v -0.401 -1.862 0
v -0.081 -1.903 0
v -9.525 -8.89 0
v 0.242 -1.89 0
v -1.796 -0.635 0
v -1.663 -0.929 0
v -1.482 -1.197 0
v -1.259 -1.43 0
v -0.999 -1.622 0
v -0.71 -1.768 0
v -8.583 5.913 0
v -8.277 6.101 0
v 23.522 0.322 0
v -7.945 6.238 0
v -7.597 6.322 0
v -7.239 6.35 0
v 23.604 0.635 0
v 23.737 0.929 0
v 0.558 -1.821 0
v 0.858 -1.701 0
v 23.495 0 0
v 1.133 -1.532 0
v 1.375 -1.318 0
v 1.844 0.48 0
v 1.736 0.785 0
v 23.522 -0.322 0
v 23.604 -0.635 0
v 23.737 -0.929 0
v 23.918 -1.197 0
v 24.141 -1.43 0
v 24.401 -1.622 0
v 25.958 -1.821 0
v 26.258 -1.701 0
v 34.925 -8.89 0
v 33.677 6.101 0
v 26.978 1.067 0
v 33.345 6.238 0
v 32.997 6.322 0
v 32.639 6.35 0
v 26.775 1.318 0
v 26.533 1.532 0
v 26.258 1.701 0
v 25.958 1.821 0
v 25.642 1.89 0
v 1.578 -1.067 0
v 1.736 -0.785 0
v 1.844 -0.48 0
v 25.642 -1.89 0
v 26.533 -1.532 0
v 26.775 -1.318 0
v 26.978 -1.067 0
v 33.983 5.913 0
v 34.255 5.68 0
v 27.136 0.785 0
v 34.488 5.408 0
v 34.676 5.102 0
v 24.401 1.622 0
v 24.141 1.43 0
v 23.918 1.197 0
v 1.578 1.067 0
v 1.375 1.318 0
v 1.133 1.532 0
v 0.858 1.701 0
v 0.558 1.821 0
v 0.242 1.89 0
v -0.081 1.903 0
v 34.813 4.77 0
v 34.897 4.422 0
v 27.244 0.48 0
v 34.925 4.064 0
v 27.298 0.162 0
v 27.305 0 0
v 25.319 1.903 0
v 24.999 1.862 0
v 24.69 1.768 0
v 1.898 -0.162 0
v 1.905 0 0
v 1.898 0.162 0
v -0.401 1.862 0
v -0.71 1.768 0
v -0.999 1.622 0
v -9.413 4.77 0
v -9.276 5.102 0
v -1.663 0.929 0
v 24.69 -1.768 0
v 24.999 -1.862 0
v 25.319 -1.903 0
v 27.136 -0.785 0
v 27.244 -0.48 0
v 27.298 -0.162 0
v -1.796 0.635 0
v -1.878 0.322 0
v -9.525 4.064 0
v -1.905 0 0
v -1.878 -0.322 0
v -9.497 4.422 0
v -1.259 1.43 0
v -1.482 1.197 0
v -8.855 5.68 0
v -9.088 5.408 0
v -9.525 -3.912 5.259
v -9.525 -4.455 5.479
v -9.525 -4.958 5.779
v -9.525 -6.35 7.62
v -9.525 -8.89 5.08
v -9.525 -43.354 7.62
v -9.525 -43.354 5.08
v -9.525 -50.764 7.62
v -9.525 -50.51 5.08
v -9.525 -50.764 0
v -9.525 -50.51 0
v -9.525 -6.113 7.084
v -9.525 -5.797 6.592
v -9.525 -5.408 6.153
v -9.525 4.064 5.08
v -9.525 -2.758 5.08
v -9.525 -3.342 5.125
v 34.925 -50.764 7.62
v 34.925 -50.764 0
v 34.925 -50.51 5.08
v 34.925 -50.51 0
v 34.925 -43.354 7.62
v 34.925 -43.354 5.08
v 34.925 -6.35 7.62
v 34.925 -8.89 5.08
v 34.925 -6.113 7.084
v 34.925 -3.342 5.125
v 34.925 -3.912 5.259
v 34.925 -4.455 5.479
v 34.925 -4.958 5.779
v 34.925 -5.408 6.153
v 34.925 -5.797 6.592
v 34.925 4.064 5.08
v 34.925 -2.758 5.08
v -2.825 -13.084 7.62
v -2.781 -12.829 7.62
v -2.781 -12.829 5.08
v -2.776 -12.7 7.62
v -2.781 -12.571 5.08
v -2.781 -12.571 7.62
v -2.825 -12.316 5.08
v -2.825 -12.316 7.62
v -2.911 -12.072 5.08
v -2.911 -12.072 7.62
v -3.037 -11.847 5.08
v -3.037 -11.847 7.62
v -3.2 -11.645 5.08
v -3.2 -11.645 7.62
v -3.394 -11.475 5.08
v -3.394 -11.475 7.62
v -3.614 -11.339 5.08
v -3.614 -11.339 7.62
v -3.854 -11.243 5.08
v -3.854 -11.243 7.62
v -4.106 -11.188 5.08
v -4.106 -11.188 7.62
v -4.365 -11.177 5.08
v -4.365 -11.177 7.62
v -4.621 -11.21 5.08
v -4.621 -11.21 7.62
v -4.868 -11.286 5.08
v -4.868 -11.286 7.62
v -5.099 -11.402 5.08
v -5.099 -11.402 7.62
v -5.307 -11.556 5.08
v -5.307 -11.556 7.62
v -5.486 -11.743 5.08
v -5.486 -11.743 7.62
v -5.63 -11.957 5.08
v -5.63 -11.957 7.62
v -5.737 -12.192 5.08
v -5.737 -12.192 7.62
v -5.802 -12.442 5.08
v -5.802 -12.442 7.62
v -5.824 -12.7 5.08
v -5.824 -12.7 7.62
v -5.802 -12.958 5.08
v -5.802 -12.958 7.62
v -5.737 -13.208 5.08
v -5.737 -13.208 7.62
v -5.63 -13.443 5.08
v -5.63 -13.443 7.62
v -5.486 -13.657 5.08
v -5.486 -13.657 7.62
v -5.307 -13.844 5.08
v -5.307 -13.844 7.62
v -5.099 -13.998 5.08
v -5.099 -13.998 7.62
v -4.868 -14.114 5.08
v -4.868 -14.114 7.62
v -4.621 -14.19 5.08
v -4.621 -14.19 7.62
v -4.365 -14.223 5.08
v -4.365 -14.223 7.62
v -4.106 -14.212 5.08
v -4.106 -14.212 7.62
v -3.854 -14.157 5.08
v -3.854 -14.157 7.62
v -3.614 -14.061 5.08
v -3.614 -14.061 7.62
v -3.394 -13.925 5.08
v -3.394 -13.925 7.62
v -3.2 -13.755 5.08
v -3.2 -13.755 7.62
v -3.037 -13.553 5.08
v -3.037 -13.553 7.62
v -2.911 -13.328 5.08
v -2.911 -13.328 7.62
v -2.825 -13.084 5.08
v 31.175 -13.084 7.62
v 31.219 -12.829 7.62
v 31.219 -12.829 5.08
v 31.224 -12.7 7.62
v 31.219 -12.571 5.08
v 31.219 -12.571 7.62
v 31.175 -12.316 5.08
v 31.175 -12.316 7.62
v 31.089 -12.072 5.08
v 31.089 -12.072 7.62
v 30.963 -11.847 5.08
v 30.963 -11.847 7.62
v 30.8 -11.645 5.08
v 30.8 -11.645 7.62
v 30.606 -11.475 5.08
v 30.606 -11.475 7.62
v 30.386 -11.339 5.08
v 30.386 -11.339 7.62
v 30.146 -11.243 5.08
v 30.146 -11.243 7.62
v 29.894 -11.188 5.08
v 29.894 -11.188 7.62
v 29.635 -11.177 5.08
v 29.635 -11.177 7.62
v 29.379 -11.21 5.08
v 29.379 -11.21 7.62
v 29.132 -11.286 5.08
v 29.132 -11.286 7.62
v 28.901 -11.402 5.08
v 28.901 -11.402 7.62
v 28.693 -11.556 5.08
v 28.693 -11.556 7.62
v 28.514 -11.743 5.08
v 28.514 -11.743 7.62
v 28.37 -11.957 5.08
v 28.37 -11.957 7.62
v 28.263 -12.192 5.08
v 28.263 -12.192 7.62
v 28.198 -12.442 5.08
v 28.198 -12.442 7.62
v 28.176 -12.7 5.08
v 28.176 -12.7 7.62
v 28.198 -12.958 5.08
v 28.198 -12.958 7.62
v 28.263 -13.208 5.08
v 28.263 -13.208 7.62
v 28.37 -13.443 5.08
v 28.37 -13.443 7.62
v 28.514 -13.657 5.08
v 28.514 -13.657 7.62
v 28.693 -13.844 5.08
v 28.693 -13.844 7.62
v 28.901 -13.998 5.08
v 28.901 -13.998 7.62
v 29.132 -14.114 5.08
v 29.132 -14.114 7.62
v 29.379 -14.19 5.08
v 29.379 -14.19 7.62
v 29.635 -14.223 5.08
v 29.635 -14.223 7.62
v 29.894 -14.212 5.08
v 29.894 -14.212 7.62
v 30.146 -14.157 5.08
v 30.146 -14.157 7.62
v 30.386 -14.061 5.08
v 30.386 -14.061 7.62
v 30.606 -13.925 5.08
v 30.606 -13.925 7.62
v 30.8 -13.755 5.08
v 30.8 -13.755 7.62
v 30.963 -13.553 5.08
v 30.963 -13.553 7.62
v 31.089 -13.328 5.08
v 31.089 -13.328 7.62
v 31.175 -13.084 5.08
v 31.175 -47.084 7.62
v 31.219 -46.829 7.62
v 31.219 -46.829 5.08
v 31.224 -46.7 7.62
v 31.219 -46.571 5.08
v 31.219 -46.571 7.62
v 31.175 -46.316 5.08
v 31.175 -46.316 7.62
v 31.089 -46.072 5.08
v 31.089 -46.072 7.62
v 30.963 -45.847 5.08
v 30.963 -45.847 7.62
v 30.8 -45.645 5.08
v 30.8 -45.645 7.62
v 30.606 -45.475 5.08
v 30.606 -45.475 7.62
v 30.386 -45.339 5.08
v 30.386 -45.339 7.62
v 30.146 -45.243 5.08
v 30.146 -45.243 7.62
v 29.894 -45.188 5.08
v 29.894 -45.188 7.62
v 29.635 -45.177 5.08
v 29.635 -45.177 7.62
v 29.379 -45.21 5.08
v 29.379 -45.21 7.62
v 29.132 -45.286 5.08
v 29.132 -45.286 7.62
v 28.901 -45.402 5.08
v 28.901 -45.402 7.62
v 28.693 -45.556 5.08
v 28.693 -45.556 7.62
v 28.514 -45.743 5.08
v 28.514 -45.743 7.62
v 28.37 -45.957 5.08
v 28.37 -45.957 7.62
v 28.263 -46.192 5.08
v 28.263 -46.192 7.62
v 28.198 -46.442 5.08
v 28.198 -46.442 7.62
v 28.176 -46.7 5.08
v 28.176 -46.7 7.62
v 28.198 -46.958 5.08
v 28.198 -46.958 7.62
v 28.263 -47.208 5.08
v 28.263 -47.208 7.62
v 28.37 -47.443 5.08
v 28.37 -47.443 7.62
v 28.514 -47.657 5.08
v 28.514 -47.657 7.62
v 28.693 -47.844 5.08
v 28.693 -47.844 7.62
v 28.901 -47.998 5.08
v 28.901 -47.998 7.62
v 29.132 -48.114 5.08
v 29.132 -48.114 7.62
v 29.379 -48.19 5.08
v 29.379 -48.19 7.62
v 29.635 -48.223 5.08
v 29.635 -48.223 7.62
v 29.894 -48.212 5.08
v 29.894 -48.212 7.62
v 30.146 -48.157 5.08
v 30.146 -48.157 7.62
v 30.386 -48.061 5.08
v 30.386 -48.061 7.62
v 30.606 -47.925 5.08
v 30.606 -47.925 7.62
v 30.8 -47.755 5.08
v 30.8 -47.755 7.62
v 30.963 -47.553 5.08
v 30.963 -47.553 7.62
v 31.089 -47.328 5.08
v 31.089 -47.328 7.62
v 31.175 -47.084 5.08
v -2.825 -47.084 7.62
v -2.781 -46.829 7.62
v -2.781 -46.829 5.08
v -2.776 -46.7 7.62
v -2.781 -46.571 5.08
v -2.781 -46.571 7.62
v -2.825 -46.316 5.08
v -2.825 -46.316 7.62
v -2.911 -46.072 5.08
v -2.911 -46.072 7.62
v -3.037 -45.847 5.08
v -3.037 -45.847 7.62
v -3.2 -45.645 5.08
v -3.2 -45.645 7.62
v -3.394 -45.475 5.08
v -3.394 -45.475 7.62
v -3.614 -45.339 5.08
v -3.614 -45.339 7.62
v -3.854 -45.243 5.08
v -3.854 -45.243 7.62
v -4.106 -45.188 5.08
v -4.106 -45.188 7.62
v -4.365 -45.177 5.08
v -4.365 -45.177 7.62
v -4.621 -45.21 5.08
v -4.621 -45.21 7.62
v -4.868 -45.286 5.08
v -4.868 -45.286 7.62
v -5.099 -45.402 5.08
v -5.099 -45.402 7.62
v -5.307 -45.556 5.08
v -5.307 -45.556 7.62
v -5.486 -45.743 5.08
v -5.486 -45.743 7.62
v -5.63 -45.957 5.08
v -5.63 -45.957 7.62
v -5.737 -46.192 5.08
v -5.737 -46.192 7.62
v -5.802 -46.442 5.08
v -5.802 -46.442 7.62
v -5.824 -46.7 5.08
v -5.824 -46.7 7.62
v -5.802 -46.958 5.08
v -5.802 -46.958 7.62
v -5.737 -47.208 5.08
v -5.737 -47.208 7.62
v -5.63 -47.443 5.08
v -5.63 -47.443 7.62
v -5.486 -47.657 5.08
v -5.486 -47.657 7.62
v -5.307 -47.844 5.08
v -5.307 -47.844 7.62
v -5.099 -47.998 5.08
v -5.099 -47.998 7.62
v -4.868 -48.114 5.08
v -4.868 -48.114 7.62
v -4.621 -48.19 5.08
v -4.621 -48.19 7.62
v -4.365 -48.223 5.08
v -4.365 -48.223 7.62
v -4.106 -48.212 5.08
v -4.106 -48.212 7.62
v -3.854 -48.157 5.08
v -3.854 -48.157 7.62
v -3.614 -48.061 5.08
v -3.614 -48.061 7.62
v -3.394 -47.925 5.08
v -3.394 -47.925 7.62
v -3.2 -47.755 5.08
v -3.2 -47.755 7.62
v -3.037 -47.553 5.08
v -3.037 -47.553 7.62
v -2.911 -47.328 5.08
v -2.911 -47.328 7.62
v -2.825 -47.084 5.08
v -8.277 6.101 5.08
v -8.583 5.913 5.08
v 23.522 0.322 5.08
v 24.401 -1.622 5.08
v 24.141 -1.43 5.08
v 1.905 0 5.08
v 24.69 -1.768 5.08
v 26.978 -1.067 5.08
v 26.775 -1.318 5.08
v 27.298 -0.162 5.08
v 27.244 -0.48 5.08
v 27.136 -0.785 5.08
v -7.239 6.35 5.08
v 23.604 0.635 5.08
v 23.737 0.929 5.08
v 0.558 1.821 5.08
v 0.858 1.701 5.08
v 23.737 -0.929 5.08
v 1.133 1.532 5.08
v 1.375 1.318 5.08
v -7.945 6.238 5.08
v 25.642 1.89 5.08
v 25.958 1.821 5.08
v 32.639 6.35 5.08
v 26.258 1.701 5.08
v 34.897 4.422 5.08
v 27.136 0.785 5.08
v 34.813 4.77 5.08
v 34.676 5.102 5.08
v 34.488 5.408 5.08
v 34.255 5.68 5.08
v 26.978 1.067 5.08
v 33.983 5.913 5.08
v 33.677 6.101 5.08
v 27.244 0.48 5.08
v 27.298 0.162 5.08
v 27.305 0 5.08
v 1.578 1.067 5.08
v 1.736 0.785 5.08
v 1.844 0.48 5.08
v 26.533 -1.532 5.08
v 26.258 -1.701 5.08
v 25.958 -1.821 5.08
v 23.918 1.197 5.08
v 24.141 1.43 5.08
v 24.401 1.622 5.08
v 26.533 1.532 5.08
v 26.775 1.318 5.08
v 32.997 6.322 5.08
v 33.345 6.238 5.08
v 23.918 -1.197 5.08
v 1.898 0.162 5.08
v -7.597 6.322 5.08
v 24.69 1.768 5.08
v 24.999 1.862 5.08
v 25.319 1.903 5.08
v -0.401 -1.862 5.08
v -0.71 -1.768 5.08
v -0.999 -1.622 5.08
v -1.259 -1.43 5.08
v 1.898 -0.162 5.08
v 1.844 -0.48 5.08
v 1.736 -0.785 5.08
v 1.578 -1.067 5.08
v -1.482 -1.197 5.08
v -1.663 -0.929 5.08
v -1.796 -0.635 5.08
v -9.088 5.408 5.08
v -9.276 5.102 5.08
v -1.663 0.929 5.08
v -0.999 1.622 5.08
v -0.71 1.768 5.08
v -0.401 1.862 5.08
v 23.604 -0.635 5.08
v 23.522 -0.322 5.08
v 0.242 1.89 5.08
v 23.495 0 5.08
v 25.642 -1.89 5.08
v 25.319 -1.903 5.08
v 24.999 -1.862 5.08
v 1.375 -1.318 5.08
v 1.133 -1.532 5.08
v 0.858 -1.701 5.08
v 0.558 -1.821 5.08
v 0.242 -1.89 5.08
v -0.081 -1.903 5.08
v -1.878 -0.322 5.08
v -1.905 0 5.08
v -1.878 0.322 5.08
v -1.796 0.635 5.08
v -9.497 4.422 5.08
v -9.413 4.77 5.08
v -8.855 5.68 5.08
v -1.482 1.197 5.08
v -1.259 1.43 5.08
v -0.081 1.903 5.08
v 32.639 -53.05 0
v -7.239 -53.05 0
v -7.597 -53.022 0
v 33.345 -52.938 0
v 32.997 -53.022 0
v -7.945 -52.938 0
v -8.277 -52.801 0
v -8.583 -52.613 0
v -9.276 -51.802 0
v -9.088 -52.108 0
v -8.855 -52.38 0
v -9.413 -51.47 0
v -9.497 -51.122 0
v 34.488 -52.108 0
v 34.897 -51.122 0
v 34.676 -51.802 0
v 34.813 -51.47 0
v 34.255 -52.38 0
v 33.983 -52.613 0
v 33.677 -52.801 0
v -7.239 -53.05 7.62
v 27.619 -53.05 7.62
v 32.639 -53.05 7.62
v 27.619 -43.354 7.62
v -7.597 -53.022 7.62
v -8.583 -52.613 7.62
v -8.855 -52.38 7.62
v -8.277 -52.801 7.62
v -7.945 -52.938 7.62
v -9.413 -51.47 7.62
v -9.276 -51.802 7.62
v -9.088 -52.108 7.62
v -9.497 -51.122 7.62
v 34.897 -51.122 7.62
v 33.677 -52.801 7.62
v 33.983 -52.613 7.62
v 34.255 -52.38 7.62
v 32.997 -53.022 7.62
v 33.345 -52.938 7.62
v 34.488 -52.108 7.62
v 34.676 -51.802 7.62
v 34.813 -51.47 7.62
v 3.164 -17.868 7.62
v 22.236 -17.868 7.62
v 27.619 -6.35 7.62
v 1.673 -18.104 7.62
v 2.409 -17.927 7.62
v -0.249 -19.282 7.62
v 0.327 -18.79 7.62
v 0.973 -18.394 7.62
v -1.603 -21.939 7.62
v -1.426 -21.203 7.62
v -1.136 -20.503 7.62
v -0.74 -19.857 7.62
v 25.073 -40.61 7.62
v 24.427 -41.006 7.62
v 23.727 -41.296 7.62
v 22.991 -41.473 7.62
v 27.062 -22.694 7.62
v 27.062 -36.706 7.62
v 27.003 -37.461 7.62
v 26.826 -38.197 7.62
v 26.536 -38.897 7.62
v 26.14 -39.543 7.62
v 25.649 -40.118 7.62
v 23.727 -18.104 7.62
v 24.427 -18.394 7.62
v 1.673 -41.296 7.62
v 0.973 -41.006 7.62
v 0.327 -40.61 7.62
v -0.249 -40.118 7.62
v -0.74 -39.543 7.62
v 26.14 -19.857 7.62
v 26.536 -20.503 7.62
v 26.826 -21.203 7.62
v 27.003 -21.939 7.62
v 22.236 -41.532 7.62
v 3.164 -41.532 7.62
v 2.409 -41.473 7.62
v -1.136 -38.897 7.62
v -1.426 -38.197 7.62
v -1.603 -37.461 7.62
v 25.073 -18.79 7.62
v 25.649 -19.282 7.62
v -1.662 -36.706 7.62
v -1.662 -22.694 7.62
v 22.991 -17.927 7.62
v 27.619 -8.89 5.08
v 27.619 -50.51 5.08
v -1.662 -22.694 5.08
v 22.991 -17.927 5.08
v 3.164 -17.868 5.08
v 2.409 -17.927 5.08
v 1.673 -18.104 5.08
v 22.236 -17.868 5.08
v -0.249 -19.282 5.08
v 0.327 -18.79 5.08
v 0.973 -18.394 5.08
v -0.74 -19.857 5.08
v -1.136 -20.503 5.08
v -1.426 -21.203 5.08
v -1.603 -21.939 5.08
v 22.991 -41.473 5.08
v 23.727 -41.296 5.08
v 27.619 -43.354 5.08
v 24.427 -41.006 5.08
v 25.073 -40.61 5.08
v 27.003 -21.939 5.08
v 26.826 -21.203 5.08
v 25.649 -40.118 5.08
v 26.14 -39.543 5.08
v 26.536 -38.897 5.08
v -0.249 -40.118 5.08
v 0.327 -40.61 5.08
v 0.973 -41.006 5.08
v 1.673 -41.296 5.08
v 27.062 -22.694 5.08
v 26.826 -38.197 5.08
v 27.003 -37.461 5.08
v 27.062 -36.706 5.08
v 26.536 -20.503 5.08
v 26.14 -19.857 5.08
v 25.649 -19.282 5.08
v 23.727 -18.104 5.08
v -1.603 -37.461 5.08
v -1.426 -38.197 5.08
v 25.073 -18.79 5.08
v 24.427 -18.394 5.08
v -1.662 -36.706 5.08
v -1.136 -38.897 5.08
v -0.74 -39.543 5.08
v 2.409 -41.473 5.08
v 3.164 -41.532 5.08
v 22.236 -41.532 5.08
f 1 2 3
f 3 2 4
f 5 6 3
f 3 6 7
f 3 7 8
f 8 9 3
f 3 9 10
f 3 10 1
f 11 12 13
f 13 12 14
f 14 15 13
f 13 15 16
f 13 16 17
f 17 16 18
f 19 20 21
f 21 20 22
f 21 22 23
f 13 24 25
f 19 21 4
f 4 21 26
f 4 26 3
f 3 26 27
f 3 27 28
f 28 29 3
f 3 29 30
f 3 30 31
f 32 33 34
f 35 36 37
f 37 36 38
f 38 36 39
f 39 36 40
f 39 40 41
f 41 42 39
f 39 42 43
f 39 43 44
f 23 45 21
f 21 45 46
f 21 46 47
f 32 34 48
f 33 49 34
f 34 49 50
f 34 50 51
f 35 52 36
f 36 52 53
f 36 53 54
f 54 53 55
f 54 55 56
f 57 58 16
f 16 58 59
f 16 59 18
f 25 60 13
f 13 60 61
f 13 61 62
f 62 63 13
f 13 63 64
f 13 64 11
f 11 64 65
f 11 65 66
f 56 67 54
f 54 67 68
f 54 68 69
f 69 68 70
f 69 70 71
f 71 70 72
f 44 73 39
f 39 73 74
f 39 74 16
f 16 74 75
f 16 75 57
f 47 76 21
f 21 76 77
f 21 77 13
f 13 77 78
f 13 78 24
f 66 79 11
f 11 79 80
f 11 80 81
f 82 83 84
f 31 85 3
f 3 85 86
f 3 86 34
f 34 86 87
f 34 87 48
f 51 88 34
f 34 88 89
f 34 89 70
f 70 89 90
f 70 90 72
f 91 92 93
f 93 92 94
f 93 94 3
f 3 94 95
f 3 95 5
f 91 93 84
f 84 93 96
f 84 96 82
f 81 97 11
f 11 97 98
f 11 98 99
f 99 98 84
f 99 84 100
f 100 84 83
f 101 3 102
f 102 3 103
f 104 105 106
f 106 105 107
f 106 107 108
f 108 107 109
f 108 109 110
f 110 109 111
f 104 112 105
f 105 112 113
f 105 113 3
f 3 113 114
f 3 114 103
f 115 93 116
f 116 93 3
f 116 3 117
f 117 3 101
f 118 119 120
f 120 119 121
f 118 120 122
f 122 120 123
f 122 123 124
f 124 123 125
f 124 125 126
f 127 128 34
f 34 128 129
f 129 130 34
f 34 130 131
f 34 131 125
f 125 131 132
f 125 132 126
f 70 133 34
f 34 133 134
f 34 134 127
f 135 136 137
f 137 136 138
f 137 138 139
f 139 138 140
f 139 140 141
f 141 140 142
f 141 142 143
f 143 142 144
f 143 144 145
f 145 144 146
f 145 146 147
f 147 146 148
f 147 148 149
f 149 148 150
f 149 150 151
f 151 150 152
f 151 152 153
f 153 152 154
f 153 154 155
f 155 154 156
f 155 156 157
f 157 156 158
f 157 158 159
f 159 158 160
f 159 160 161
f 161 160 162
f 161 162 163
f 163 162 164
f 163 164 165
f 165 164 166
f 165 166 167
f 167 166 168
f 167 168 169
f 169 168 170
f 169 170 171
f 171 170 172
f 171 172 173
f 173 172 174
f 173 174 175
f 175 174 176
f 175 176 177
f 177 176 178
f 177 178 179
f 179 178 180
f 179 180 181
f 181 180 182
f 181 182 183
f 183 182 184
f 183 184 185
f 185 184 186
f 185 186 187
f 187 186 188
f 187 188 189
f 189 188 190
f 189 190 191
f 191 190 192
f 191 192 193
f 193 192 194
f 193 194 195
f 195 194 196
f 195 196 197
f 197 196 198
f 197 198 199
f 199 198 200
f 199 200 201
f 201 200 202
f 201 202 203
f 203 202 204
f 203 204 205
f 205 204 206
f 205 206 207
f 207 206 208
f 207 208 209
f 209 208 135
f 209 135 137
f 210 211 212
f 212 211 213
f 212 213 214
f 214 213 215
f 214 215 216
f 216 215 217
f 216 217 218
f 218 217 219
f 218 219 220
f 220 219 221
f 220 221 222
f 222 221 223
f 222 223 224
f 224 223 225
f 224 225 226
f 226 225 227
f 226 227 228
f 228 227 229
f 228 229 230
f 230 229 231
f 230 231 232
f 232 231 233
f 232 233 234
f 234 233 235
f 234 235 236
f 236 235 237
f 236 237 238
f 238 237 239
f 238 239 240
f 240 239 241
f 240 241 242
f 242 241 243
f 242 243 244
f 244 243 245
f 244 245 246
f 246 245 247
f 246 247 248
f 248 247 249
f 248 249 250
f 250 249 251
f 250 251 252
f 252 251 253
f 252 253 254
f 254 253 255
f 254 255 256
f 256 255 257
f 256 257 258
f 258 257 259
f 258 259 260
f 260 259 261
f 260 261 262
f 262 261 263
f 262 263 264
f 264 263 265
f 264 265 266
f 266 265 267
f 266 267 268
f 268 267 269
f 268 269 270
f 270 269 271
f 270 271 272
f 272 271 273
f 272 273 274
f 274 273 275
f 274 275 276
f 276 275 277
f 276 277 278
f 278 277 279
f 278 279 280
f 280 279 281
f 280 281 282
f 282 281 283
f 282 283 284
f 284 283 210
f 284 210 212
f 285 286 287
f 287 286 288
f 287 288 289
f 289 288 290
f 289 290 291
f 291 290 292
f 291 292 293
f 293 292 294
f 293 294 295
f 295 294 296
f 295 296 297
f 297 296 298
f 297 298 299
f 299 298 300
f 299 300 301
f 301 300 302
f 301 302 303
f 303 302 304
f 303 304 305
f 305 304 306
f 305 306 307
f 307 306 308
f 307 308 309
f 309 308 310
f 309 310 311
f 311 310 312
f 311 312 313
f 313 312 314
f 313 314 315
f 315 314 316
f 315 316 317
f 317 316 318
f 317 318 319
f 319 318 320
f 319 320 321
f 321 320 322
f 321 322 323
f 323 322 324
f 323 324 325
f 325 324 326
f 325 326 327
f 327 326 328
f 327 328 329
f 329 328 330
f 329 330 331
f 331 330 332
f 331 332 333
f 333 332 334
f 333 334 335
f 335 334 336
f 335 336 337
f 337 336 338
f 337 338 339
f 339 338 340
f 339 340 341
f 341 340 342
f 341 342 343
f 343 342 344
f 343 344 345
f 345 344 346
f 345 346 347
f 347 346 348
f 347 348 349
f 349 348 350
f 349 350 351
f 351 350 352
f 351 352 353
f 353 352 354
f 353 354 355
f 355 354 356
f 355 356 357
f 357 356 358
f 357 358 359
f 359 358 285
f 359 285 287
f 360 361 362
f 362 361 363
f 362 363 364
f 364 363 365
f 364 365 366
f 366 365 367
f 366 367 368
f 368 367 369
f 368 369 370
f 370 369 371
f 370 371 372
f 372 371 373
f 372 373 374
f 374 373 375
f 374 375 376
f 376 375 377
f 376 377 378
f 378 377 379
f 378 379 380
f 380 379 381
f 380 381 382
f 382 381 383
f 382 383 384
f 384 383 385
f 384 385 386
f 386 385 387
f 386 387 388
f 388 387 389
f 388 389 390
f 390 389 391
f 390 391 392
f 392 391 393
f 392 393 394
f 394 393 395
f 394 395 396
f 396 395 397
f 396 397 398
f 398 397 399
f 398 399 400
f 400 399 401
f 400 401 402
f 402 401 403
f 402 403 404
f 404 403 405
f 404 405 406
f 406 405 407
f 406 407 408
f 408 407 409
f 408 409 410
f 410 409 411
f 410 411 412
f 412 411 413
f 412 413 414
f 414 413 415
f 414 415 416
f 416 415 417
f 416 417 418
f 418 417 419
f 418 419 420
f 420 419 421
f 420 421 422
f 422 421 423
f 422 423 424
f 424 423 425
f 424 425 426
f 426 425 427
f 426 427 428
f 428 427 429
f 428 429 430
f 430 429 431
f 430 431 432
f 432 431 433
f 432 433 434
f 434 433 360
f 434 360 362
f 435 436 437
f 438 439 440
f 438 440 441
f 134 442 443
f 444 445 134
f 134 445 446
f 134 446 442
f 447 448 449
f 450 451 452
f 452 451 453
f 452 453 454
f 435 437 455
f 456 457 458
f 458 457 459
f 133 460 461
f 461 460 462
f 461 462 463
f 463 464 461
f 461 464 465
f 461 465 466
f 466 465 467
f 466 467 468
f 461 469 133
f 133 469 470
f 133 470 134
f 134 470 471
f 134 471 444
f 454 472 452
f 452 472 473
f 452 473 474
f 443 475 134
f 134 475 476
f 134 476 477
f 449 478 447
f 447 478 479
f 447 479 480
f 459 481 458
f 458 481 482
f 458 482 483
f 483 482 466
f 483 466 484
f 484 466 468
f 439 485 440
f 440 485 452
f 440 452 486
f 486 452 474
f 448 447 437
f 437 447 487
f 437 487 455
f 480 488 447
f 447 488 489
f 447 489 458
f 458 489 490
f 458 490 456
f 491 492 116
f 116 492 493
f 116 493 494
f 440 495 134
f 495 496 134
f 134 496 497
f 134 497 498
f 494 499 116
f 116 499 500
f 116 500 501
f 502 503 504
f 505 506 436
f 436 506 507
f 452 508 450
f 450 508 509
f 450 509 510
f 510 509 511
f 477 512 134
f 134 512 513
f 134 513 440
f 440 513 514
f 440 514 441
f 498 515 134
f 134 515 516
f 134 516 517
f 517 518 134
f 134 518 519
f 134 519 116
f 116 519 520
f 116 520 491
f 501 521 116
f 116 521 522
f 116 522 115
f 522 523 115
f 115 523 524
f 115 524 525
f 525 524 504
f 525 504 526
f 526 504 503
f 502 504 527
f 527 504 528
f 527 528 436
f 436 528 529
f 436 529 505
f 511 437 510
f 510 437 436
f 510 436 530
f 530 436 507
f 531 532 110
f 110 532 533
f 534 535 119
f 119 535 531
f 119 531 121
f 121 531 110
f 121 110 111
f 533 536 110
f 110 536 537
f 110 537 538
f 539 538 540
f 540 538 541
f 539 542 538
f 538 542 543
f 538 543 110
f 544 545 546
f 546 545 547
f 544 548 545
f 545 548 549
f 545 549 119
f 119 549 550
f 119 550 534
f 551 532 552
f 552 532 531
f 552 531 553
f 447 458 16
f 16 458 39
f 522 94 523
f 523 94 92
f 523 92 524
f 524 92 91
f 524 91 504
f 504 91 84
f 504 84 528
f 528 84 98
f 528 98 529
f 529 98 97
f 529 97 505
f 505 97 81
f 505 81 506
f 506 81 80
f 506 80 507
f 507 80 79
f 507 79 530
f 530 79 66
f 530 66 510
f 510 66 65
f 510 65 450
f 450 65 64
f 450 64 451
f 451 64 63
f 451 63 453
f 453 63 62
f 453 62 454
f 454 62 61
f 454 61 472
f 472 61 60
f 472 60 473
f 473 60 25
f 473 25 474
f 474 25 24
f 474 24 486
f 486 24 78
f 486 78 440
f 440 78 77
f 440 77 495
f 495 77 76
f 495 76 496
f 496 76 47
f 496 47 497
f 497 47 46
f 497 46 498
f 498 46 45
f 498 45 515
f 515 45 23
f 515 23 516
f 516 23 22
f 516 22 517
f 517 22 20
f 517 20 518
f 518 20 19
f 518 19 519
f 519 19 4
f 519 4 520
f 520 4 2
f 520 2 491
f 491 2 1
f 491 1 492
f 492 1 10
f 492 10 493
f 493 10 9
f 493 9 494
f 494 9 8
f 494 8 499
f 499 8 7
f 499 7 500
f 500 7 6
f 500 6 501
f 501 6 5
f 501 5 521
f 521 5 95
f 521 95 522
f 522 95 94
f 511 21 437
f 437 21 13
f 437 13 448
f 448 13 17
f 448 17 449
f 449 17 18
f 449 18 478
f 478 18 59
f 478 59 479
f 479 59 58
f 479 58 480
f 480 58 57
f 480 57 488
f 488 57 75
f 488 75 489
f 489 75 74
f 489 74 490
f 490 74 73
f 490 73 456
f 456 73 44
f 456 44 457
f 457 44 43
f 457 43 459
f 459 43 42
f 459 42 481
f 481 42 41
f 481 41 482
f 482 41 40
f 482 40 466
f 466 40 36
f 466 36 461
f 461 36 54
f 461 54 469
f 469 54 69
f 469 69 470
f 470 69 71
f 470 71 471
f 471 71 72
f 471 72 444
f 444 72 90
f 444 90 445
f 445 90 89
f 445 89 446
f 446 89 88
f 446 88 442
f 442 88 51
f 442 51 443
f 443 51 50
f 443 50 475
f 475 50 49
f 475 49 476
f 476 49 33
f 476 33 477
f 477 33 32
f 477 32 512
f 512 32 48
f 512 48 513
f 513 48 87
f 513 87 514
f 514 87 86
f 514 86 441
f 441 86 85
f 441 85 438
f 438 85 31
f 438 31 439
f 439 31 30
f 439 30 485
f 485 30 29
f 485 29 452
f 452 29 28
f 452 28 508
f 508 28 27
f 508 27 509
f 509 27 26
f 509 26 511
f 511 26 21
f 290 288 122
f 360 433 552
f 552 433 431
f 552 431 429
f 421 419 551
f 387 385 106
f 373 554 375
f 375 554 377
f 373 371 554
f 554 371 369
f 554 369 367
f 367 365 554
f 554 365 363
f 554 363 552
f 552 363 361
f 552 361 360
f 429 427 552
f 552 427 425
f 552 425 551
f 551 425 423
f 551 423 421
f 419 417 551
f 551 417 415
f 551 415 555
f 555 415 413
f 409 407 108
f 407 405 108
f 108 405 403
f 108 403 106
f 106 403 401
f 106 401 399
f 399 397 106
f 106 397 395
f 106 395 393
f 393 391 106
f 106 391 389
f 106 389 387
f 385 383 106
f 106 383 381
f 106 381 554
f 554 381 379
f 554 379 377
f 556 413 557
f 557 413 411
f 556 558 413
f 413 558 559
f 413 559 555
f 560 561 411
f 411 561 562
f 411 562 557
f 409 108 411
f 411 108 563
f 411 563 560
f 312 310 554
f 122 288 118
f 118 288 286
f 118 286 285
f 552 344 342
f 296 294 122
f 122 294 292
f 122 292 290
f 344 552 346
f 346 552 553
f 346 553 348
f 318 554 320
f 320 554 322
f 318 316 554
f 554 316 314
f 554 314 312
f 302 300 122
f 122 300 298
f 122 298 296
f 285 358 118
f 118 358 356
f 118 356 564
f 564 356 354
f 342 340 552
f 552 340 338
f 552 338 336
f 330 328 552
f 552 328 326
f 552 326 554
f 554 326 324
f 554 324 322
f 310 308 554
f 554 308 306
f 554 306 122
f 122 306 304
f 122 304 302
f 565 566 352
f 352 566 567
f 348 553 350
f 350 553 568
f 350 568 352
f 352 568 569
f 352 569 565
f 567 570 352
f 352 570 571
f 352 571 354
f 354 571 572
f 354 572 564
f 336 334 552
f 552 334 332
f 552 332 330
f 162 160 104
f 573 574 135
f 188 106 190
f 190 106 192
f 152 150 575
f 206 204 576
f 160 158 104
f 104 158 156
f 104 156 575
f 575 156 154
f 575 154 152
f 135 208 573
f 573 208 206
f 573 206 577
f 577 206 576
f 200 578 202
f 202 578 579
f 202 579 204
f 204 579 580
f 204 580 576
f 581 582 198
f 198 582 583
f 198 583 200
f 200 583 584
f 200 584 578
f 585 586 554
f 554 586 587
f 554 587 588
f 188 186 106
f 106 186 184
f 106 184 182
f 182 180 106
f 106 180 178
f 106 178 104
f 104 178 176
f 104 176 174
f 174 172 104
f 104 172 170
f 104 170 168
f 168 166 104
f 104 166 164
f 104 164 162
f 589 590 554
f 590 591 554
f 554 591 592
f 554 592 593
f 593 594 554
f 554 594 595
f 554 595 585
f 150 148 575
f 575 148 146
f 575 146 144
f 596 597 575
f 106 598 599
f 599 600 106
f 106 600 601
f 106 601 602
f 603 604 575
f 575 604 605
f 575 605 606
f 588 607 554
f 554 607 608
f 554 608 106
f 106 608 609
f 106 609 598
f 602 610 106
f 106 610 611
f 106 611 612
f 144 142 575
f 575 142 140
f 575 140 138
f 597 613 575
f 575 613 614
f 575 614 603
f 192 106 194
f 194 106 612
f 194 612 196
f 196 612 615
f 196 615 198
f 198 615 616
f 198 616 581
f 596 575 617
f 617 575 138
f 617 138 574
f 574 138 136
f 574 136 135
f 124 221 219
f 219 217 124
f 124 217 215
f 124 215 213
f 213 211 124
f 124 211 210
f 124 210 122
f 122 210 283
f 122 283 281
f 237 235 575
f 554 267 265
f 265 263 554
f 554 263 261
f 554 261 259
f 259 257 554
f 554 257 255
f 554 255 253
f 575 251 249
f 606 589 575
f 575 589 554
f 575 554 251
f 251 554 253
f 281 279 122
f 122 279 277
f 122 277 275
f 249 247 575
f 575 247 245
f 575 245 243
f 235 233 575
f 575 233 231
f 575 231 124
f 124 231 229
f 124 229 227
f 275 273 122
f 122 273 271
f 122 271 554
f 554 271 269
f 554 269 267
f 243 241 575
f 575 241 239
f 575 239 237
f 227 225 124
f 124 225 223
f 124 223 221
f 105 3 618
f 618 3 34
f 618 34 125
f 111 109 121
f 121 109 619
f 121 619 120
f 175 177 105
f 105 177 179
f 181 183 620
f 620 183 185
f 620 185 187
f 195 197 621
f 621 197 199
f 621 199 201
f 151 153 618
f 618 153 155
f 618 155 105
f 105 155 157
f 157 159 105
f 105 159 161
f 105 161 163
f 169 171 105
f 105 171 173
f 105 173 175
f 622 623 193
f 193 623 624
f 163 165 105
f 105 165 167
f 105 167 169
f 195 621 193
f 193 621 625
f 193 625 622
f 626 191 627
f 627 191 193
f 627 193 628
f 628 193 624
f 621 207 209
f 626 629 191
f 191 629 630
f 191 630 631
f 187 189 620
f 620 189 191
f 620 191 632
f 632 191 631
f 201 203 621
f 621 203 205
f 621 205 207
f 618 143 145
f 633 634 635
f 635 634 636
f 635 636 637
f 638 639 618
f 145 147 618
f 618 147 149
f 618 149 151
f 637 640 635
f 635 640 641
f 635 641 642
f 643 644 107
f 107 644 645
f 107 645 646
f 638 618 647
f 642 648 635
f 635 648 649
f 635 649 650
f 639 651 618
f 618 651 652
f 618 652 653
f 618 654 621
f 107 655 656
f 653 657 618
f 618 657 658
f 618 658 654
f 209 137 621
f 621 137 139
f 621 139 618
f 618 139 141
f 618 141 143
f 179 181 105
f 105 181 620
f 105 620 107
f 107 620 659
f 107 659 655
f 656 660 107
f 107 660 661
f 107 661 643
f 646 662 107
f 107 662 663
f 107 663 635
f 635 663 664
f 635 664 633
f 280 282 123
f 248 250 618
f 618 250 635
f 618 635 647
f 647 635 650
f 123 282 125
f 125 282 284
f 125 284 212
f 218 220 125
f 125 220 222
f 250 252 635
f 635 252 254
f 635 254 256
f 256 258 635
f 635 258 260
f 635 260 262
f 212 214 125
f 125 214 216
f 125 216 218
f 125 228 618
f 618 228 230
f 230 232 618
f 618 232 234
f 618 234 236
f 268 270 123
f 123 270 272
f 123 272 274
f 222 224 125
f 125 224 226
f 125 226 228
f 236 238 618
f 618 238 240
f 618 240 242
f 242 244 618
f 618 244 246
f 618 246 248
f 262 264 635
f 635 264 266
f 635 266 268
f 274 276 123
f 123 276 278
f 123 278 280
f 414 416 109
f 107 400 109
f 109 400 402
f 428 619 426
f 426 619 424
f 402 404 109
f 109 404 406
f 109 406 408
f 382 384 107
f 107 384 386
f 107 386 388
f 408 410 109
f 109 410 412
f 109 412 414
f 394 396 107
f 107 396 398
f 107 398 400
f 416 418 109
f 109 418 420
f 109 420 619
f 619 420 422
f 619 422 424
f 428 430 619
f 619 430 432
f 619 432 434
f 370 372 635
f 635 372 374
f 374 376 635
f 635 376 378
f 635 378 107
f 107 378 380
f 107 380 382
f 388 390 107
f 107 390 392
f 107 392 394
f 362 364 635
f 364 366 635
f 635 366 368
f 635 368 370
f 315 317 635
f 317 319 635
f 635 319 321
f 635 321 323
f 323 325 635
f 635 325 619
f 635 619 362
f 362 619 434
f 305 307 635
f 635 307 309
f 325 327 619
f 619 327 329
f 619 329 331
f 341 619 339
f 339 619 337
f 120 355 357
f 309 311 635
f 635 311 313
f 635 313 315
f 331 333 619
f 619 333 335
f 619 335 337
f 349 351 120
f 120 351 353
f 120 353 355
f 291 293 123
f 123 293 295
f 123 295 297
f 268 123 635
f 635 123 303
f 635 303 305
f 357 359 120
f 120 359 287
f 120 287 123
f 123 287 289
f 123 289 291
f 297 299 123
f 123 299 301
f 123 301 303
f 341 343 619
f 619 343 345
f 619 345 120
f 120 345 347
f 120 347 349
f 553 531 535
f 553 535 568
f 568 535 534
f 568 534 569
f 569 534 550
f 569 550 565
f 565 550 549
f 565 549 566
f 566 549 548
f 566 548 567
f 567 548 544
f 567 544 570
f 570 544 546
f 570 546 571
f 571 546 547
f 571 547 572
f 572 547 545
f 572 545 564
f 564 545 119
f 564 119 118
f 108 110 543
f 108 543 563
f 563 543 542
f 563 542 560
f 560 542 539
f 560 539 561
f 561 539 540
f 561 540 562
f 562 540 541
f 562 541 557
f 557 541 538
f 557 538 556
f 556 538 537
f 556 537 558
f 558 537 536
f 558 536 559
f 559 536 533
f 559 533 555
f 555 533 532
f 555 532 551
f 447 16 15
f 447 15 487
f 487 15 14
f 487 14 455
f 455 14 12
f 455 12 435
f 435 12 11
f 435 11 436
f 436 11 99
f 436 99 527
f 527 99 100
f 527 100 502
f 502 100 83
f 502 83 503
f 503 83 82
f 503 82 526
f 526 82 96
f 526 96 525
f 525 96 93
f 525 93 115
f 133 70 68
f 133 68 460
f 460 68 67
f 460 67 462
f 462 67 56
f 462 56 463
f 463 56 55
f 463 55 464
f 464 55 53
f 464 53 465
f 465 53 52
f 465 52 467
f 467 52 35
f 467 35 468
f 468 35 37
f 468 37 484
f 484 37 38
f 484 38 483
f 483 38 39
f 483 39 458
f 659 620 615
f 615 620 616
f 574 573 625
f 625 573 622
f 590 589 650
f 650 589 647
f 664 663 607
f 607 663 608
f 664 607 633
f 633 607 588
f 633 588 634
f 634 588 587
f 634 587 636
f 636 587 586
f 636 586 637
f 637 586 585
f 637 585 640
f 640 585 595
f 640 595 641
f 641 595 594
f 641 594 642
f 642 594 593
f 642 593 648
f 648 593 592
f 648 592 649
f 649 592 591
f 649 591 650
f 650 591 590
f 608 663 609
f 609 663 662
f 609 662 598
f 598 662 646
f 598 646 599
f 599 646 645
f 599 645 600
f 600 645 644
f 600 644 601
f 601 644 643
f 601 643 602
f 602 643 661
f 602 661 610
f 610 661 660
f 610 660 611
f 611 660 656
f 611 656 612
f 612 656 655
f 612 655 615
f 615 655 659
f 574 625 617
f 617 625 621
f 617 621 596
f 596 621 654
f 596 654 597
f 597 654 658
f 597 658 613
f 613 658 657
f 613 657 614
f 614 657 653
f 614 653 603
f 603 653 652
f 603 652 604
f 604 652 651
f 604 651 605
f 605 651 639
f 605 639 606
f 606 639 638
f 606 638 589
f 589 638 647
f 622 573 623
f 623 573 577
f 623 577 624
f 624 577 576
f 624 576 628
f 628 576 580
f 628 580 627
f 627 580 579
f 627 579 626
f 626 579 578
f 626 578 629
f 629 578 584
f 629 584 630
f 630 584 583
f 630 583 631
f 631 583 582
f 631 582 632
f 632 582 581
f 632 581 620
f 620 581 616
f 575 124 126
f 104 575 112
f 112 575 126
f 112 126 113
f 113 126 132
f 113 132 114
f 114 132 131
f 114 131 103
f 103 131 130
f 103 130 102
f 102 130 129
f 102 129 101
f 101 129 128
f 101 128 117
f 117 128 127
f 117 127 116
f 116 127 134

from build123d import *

# Parameters (mm, degrees)
SKETCH1_W           = 44.45
SKETCH1_H           = 59.4
SKETCH1_R           = 1.905
SKETCH1_R_2         = 1.524
BOSS_EXTRUDE1_DEPTH = 5.08
SKETCH2_W           = 44.45
SKETCH2_H           = 46.7
SKETCH2_R           = 1.524
BOSS_EXTRUDE2_DEPTH = 2.54
SKETCH3_W           = 44.45
SKETCH3_H           = 41.62
CUT_EXTRUDE1_DEPTH  = 5.08
FILLET2_R           = 2.286
SKETCH4_W           = 28.72406321
SKETCH4_H           = 23.663865546
CUT_EXTRUDE2_DEPTH  = 64.969700054
FILLET3_R           = 4.826
FILLET4_R           = 3.81


with BuildPart() as part:
    # Sketch1 → Boss-Extrude1 (new body)
    with BuildSketch(Plane.XY):
        with Locations((12.7, -23.35)):
            Rectangle(SKETCH1_W, SKETCH1_H)
        Circle(SKETCH1_R, mode=Mode.SUBTRACT)
        with Locations((25.4, 0)):
            Circle(SKETCH1_R, mode=Mode.SUBTRACT)
        with Locations((-4.3, -12.7)):
            Circle(SKETCH1_R_2, mode=Mode.SUBTRACT)
        with Locations((29.7, -12.7)):
            Circle(SKETCH1_R_2, mode=Mode.SUBTRACT)
        with Locations((29.7, -46.7)):
            Circle(SKETCH1_R_2, mode=Mode.SUBTRACT)
        with Locations((-4.3, -46.7)):
            Circle(SKETCH1_R_2, mode=Mode.SUBTRACT)
    extrude(amount=BOSS_EXTRUDE1_DEPTH)

    # Sketch2 → Boss-Extrude2 (add)
    with BuildSketch(Plane.XY.offset(5.08)):
        with Locations((12.7, -29.7)):
            Rectangle(SKETCH2_W, SKETCH2_H)
        with Locations((-4.3, -12.7)):
            Circle(SKETCH2_R, mode=Mode.SUBTRACT)
        with Locations((-4.3, -46.7)):
            Circle(SKETCH2_R, mode=Mode.SUBTRACT)
        with Locations((29.7, -12.7)):
            Circle(SKETCH2_R, mode=Mode.SUBTRACT)
        with Locations((29.7, -46.7)):
            Circle(SKETCH2_R, mode=Mode.SUBTRACT)
    extrude(amount=BOSS_EXTRUDE2_DEPTH)

    # Sketch3 → Cut-Extrude1 (cut)
    with BuildSketch(Plane(origin=(0, 0, 0), x_dir=(-1, 0, 0), z_dir=(0, 0, -1))):
        with Locations((-12.7, -29.7)):
            Rectangle(SKETCH3_W, SKETCH3_H)
    extrude(amount=-CUT_EXTRUDE1_DEPTH, mode=Mode.SUBTRACT)

    # Fillet2
    fillet2_edges = [part.edges().sort_by_distance(p)[0] for p in [
        (-9.525, 6.35, 2.54),
        (34.925, 6.35, 2.54),
        (34.925, -53.05, 3.81),
        (-9.525, -53.05, 3.81),
    ]]
    fillet(fillet2_edges, radius=FILLET2_R)

    # Sketch4 → Cut-Extrude2 (cut, through all)
    with BuildSketch(Plane.XY.offset(7.62)):
        with Locations((12.7, -29.7)):
            Rectangle(SKETCH4_W, SKETCH4_H)
    extrude(amount=-CUT_EXTRUDE2_DEPTH, mode=Mode.SUBTRACT)

    # Fillet3
    fillet3_edges = [part.edges().sort_by_distance(p)[0] for p in [
        (-1.662031605, -41.531932773, 6.35),
        (-1.662031605, -17.868067227, 6.35),
        (27.062031605, -17.868067227, 6.35),
        (27.062031605, -41.531932773, 6.35),
    ]]
    fillet(fillet3_edges, radius=FILLET3_R)

    # Fillet4
    # the kernel refuses this fillet: 3.81 mm, written as the material it adds along each edge
    with BuildSketch(Plane(origin=(34.925, -6.35, 5.08), x_dir=(0, 0, 1), z_dir=(-1, 0, 0))) as fillet4_piece_1:
        with BuildLine():
            CenterArc((3.81, 3.592102448), FILLET4_R, 180, 70.528779366)
            Line((0, 3.592102448), (-0.0762, 3.592102448))
            Line((-0.0762, 3.592102448), (-0.0762, 0))
            Line((-0.0762, 0), (0, -0.0762))
            ThreePointArc((0, -0.0762), (1.27, -0.0762), (2.5146, -0.071842049))
            Line((2.5146, -0.071842049), (2.54, 0))
        make_face()
    extrude(amount=44.45)


solid = part.part
